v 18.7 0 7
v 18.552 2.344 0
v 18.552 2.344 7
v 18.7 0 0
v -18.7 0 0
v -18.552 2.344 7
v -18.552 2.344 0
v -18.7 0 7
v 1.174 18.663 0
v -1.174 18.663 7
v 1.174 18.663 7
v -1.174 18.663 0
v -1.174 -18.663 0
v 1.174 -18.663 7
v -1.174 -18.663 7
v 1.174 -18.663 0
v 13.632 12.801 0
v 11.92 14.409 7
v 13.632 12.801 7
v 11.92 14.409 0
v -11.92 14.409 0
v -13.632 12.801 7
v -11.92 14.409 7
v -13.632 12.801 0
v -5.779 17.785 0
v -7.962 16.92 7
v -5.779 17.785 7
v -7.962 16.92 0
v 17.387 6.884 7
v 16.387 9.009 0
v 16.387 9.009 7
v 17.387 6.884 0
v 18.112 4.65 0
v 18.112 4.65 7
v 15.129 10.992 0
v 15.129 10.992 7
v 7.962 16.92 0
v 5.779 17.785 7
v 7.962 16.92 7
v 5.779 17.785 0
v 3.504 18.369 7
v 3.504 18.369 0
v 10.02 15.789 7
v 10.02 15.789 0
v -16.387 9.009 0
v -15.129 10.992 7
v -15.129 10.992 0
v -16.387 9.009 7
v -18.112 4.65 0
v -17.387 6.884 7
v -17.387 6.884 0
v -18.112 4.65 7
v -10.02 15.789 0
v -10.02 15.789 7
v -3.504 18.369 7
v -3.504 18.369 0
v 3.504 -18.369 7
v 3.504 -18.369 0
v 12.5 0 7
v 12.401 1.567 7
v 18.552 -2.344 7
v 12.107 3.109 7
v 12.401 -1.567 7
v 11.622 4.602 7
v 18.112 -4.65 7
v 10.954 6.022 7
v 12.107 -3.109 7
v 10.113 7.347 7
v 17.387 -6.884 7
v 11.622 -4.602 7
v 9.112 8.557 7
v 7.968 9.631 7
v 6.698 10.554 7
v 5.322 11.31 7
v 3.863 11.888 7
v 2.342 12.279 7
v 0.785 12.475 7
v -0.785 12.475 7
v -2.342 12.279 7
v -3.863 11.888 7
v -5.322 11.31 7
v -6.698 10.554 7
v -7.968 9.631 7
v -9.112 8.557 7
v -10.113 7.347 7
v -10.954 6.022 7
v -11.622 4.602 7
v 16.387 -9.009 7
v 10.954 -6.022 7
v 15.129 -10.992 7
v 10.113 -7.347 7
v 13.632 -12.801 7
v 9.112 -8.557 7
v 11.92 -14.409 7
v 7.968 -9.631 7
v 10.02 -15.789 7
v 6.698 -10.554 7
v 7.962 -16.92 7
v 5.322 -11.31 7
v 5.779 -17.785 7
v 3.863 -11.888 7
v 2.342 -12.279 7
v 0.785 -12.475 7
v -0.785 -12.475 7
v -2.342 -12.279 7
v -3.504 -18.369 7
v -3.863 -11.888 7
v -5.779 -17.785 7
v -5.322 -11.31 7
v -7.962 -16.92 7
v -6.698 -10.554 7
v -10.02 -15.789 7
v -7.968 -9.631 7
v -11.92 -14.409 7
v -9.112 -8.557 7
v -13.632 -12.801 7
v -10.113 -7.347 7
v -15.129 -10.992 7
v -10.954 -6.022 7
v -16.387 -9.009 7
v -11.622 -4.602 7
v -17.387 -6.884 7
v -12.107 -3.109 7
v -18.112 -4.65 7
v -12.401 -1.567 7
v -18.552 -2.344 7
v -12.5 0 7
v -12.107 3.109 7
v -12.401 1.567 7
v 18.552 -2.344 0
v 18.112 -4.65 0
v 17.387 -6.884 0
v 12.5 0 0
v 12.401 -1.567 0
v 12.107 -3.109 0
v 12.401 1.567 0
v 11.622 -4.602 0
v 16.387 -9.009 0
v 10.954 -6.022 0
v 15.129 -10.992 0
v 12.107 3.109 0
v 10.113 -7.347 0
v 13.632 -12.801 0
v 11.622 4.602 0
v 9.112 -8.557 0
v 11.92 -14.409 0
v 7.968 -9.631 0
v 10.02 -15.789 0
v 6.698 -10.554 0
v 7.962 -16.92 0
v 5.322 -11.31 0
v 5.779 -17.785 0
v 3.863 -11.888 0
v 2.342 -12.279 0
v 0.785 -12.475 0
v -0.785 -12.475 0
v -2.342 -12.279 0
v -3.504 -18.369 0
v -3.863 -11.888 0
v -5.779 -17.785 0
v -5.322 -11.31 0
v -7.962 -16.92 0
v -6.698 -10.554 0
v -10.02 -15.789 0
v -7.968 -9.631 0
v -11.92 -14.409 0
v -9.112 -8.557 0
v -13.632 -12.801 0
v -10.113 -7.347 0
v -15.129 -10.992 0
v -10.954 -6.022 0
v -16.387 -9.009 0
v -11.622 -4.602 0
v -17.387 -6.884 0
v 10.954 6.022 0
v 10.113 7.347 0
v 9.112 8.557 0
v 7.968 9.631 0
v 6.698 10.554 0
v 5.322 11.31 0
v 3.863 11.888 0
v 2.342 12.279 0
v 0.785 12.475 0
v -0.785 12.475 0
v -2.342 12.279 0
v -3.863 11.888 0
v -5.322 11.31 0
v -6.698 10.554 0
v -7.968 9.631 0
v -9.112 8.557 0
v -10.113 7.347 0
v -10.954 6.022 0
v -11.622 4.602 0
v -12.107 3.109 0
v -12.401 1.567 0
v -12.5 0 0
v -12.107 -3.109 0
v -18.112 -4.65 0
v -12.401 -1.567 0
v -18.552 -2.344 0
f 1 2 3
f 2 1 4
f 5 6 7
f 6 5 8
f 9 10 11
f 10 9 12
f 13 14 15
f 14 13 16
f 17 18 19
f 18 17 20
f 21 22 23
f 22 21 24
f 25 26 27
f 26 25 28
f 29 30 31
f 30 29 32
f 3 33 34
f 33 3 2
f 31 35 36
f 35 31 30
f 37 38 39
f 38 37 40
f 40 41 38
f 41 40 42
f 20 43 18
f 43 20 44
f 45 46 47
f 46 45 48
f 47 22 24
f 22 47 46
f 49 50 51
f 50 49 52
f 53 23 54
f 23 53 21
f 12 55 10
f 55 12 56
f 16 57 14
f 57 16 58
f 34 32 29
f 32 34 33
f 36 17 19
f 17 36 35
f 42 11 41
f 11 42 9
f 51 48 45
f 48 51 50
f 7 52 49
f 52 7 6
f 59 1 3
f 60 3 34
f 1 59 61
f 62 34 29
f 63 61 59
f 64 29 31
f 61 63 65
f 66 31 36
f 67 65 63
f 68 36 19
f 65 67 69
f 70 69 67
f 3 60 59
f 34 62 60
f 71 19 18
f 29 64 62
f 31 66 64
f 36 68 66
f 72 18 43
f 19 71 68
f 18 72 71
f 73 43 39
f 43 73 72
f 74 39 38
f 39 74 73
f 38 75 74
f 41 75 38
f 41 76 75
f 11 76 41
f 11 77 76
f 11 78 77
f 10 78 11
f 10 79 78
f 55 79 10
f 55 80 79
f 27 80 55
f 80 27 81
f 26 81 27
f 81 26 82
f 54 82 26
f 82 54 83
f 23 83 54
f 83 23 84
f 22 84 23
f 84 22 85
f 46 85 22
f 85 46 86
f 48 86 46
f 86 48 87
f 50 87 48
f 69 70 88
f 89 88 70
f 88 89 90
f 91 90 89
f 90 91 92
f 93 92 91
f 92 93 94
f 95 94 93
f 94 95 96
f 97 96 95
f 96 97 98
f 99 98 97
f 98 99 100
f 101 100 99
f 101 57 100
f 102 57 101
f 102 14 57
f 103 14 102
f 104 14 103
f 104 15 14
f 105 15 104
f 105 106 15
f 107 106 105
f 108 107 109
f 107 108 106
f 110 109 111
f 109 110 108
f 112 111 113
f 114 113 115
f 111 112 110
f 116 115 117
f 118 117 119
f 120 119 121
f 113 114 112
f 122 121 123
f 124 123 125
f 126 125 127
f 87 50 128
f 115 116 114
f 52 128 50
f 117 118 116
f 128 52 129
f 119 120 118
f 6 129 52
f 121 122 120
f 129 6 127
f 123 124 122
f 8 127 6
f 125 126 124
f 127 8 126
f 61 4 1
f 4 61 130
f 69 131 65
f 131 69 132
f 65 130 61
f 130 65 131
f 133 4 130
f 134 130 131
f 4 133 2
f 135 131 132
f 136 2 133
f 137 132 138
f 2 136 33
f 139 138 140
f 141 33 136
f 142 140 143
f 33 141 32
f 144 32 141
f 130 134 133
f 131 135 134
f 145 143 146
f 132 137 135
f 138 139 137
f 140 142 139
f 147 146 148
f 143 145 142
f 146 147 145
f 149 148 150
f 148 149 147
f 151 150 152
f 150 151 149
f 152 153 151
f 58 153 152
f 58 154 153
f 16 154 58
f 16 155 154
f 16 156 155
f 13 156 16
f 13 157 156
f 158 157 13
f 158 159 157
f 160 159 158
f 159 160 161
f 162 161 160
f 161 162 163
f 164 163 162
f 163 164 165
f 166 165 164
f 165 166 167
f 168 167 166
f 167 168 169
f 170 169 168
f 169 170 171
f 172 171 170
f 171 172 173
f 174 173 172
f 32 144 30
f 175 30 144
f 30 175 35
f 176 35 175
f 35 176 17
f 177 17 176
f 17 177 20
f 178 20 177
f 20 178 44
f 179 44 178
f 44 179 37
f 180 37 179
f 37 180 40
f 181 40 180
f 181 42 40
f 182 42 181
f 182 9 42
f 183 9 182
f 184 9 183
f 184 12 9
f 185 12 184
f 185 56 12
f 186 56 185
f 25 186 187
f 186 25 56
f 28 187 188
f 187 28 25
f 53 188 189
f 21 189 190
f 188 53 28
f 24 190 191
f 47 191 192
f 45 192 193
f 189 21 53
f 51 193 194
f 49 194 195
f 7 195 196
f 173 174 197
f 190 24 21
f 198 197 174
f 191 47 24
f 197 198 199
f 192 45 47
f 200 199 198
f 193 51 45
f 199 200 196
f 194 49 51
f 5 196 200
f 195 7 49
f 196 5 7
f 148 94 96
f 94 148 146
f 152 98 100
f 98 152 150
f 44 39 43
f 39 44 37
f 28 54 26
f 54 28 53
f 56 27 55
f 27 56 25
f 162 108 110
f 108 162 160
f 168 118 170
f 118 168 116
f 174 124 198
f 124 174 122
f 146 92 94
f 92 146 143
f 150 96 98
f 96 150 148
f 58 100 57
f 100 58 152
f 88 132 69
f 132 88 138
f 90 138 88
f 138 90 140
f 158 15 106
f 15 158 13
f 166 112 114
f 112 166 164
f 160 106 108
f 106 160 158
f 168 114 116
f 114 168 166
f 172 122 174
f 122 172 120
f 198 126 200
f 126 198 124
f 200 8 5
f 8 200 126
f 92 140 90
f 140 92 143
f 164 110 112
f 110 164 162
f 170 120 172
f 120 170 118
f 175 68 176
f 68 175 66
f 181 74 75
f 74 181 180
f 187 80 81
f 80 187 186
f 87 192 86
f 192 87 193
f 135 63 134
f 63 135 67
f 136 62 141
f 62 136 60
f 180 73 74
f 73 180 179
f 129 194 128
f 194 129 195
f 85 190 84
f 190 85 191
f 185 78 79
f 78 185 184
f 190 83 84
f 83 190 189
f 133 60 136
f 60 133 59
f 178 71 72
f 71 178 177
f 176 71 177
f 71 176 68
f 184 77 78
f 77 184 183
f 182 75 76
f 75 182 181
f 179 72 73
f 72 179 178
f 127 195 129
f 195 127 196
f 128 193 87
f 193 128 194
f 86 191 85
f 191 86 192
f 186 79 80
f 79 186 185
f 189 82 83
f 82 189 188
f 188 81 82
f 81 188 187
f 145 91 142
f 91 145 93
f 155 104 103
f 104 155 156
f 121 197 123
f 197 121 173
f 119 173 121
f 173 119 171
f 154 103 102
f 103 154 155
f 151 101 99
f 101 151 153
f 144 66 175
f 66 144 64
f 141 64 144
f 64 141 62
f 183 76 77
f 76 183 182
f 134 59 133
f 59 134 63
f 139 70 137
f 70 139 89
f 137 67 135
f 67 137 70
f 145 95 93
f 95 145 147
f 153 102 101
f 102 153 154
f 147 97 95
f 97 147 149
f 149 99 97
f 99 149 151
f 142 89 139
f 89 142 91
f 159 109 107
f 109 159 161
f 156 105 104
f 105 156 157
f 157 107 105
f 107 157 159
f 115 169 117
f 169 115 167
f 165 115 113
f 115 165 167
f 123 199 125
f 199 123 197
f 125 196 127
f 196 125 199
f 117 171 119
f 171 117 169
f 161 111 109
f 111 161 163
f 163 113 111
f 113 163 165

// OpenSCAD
$fn = 50;


difference() {
	union() {
		translate(v = [0, 0, 0]) {
			rotate(a = [0, 0, 0]) {
				cylinder(h = 7, r = 18.7000000000);
			}
		}
	}
	union() {
		translate(v = [0, 0, 0]) {
			rotate(a = [0, 0, 0]) {
				cylinder(h = 7, r = 12.5000000000);
			}
		}
	}
}
